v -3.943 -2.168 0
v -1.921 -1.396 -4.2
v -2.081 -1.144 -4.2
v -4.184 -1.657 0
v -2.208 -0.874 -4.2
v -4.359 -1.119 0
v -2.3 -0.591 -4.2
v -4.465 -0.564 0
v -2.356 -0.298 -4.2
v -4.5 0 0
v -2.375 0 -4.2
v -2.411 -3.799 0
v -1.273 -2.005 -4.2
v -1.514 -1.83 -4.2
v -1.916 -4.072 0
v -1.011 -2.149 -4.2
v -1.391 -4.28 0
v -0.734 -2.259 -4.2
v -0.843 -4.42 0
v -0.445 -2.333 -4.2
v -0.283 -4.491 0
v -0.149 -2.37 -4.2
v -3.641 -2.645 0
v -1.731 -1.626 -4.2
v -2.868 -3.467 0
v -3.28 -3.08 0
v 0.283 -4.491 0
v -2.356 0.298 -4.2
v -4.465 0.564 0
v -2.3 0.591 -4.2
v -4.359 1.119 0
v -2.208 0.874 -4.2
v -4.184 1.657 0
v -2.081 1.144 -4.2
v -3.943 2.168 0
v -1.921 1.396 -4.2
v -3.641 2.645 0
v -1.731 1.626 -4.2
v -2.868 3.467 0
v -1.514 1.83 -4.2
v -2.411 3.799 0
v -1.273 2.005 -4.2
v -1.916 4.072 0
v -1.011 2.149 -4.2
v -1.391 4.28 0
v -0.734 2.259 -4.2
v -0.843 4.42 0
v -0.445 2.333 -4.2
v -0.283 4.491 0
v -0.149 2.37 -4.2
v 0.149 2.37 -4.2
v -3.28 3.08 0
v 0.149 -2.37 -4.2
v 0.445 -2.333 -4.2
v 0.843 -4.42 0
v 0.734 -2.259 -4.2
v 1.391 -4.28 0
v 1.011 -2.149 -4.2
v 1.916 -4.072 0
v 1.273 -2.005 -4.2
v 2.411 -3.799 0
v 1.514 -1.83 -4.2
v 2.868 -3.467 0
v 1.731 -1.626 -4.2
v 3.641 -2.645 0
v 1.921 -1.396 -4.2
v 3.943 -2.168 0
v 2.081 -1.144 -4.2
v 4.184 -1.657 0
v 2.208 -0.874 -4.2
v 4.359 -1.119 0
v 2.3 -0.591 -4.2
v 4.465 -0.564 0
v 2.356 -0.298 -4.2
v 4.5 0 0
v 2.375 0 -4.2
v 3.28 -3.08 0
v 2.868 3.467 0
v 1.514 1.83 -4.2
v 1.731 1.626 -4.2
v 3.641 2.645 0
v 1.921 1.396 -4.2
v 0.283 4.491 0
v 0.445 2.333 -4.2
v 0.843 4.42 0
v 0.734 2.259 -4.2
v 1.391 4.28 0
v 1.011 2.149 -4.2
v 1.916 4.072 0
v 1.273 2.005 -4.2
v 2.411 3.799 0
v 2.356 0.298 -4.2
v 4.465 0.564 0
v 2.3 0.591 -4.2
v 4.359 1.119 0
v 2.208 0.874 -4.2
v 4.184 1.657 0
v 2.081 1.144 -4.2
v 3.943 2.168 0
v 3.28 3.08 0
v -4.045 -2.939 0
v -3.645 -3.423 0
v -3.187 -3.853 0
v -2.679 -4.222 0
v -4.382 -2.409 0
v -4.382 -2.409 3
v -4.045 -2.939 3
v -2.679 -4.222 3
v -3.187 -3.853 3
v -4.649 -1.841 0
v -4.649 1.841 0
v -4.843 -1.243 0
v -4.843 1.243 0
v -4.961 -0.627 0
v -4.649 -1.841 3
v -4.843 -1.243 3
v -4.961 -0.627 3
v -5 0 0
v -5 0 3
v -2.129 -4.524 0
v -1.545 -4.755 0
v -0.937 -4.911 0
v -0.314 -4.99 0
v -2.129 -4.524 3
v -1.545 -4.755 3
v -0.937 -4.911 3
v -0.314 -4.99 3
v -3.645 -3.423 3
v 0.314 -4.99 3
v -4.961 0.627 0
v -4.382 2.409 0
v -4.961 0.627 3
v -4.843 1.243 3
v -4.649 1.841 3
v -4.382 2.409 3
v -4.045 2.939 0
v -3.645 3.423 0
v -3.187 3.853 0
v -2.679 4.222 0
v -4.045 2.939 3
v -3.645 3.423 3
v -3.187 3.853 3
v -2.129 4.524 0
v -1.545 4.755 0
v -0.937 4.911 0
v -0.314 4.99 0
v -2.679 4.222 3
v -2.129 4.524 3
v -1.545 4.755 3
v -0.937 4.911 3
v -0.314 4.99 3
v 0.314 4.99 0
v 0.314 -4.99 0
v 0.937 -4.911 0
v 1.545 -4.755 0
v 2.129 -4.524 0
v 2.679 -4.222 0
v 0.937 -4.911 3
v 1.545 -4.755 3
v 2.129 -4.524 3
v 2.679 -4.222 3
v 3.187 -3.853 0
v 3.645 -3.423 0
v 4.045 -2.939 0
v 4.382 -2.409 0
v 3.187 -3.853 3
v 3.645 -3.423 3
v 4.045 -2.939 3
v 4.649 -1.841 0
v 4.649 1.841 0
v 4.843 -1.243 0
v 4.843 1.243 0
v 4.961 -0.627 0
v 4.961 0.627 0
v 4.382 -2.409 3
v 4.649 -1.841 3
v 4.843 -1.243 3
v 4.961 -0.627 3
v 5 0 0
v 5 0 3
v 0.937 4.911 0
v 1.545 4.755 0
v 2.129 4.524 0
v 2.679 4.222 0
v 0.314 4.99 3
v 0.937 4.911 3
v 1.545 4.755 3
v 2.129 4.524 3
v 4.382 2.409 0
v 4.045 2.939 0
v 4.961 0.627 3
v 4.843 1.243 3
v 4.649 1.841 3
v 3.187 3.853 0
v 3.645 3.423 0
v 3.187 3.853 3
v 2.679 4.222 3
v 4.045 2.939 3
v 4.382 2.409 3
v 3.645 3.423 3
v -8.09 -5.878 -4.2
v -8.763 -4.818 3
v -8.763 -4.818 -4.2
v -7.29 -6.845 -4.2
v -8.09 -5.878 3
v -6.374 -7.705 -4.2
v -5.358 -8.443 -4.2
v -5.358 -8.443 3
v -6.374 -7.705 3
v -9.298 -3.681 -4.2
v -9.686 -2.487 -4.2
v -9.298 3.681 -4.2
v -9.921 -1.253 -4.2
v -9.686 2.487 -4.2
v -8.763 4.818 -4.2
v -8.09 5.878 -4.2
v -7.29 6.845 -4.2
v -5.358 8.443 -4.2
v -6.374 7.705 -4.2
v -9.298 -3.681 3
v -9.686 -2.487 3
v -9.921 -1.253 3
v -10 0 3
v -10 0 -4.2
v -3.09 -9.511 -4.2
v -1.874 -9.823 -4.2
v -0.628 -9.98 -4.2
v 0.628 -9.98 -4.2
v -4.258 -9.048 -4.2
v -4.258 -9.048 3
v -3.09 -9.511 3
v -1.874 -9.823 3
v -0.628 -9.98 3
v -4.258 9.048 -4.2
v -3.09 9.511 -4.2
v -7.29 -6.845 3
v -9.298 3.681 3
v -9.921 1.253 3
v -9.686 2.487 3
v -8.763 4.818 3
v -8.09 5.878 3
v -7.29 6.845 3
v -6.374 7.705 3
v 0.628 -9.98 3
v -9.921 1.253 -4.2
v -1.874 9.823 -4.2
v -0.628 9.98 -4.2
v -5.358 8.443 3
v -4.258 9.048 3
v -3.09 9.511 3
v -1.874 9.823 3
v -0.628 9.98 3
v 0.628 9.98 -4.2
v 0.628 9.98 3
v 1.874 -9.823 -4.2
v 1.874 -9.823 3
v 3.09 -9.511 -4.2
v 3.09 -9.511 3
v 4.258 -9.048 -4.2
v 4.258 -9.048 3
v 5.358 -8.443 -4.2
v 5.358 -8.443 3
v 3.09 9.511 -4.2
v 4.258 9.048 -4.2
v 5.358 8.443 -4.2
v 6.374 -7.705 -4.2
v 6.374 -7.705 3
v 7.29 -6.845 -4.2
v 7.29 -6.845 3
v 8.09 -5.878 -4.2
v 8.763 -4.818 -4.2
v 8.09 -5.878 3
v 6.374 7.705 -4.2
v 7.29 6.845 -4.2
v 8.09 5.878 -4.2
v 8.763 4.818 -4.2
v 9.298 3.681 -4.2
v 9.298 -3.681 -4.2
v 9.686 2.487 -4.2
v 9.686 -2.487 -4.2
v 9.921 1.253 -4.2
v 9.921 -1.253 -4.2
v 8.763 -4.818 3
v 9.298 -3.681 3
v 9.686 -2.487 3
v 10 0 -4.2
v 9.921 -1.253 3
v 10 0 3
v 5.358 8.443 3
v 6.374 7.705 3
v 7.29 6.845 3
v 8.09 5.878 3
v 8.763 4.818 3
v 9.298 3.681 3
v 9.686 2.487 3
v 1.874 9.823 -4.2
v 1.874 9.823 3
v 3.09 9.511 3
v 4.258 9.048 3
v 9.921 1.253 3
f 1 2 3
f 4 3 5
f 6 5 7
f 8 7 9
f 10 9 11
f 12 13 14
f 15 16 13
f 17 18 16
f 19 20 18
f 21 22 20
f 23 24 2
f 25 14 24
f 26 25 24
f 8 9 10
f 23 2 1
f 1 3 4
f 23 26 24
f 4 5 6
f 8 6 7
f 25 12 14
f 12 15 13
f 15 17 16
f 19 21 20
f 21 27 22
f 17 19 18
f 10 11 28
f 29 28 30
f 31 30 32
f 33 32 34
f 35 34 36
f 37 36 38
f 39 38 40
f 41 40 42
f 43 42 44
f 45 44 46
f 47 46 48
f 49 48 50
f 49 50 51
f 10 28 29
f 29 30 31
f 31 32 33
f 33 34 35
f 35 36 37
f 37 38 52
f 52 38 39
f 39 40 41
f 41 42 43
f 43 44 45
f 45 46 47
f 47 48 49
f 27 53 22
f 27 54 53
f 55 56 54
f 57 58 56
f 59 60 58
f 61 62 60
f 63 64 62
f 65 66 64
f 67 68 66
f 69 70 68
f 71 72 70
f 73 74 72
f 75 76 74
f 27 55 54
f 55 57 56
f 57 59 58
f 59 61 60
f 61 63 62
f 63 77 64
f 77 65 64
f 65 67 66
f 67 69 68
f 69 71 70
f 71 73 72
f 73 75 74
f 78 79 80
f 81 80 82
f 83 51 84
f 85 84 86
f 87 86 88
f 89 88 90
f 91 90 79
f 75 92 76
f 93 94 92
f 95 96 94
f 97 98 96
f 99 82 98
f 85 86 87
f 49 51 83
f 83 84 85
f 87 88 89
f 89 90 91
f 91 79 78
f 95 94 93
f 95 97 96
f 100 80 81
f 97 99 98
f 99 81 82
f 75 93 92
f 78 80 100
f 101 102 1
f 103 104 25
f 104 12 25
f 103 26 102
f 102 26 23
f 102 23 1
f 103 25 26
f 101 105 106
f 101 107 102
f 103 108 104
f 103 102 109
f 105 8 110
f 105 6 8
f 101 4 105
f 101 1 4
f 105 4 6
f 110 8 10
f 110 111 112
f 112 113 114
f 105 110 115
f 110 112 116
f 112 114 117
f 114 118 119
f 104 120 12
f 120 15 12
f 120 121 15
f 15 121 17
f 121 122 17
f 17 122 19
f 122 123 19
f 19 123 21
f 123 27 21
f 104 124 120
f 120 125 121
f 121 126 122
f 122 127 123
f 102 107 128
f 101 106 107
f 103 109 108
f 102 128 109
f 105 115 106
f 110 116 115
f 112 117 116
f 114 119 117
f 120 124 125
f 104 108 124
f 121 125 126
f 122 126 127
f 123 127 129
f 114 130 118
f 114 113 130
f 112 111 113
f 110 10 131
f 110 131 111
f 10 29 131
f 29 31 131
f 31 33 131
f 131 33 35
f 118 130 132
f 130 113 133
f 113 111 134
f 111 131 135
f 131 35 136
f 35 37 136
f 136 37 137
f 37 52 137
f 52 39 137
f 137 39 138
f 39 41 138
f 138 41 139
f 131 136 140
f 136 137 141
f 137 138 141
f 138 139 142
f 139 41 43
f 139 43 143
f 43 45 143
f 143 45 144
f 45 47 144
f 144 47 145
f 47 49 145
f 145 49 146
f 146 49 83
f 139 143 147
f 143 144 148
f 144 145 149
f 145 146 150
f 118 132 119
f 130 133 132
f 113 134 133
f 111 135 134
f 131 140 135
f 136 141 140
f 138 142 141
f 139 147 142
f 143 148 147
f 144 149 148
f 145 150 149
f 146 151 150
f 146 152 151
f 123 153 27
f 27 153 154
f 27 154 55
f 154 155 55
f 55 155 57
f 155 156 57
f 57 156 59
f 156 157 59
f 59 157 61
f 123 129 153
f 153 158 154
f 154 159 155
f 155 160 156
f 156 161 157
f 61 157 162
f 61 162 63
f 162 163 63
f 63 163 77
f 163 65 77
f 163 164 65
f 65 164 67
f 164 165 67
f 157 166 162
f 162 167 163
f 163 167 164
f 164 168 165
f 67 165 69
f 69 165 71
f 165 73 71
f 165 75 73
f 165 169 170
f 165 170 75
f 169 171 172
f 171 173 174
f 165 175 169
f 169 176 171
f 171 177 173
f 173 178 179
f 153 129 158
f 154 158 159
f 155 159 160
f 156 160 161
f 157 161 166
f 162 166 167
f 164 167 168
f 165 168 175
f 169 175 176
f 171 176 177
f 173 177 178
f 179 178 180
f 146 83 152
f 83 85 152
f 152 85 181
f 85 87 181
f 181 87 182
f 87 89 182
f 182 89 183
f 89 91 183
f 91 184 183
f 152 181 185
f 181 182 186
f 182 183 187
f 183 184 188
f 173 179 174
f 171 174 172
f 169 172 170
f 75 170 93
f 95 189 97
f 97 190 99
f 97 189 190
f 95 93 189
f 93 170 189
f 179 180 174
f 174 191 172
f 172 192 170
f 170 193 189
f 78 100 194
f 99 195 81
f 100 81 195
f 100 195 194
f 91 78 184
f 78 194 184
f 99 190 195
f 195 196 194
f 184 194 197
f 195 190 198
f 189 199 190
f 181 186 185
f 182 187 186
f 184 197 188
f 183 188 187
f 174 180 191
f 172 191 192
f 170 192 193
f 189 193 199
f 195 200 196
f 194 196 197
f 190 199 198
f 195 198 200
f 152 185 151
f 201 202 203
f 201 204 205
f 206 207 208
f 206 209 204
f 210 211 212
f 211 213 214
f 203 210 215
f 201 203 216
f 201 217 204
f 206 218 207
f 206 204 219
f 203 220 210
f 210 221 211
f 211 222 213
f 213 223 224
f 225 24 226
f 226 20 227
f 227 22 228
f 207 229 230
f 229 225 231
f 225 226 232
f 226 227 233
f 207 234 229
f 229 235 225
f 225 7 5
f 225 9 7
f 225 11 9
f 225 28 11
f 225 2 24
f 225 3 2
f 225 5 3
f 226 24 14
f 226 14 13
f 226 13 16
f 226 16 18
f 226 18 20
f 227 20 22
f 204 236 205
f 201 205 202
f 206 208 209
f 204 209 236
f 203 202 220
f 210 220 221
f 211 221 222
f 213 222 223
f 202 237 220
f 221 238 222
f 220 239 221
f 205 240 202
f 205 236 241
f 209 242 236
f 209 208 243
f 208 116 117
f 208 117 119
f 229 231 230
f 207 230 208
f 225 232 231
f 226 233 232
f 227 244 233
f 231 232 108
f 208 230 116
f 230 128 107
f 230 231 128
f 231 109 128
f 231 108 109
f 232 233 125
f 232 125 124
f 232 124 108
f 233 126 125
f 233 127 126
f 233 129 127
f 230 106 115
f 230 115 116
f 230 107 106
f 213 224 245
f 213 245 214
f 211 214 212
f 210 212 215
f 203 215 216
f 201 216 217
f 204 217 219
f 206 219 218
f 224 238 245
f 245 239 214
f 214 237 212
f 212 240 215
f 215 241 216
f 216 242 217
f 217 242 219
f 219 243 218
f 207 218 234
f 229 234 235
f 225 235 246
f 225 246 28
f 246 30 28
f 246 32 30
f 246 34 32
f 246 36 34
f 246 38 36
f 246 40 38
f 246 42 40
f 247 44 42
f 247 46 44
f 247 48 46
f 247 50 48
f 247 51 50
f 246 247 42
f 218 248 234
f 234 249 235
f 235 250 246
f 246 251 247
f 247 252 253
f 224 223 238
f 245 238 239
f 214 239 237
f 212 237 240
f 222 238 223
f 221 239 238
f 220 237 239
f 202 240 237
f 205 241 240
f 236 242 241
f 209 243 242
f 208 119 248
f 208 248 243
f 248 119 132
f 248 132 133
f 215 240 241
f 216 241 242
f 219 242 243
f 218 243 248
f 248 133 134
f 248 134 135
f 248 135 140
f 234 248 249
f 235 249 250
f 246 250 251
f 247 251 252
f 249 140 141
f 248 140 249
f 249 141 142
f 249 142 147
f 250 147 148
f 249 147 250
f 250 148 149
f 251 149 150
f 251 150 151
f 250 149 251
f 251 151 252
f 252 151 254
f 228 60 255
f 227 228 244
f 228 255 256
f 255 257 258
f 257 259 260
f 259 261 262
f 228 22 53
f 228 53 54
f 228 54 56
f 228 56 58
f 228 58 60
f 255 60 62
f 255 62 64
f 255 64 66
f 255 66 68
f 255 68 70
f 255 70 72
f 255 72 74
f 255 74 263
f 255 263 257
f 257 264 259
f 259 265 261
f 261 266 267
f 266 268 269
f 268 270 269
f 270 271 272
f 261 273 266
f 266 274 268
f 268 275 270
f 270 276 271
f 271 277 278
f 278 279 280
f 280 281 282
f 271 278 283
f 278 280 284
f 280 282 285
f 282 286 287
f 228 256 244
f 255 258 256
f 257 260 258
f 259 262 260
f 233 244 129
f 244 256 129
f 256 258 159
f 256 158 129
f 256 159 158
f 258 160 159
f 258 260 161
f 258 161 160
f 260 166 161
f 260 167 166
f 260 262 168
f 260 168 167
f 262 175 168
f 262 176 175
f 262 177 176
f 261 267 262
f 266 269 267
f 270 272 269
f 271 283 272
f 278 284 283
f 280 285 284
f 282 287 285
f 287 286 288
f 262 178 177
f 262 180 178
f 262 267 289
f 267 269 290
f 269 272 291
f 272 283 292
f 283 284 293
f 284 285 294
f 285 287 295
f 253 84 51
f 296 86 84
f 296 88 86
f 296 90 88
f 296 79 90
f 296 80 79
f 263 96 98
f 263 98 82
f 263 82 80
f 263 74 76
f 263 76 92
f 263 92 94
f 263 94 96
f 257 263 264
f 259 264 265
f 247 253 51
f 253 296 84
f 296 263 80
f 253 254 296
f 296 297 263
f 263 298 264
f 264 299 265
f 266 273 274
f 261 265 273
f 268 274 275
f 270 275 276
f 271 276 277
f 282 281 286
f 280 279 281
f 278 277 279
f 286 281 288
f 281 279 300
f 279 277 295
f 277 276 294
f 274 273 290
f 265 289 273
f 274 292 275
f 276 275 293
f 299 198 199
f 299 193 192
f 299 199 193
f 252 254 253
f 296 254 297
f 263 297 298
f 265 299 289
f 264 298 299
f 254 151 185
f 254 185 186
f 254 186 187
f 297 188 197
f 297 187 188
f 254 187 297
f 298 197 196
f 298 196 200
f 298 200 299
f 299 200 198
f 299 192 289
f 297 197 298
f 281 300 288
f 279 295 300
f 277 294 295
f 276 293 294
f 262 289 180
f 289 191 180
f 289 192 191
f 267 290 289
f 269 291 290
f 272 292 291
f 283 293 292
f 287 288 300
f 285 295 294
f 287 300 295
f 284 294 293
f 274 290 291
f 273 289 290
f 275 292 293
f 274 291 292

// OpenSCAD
$fn = 50;

difference() {
	union() {
		translate(v = [0, 0, -4.2]) {
			cylinder(h = 7.2, r = 10.0);
		}
	}
	union() {
		translate(v = [0, 0, 0]) {
			rotate(a = [0, 0, 0]) {
				difference() {
					union() {
						translate(v = [0, 0, -7.2]) {
							cylinder(h = 7.2, r = 2.25);
						}
						translate(v = [0, 0, -4.2]) {
							cylinder(h = 4.2, r1 = 2.375, r2 = 4.5);
						}
						translate(v = [0, 0, -7.2]) {
							cylinder(h = 7.2, r = 2.375);
						}
						translate(v = [0, 0, -7.2]) {
							cylinder(h = 7.2, r = 2.25);
						}
					}
					union();
				}
			}
		}
		#cylinder(h = 3, r = 5.0);
	}
}
